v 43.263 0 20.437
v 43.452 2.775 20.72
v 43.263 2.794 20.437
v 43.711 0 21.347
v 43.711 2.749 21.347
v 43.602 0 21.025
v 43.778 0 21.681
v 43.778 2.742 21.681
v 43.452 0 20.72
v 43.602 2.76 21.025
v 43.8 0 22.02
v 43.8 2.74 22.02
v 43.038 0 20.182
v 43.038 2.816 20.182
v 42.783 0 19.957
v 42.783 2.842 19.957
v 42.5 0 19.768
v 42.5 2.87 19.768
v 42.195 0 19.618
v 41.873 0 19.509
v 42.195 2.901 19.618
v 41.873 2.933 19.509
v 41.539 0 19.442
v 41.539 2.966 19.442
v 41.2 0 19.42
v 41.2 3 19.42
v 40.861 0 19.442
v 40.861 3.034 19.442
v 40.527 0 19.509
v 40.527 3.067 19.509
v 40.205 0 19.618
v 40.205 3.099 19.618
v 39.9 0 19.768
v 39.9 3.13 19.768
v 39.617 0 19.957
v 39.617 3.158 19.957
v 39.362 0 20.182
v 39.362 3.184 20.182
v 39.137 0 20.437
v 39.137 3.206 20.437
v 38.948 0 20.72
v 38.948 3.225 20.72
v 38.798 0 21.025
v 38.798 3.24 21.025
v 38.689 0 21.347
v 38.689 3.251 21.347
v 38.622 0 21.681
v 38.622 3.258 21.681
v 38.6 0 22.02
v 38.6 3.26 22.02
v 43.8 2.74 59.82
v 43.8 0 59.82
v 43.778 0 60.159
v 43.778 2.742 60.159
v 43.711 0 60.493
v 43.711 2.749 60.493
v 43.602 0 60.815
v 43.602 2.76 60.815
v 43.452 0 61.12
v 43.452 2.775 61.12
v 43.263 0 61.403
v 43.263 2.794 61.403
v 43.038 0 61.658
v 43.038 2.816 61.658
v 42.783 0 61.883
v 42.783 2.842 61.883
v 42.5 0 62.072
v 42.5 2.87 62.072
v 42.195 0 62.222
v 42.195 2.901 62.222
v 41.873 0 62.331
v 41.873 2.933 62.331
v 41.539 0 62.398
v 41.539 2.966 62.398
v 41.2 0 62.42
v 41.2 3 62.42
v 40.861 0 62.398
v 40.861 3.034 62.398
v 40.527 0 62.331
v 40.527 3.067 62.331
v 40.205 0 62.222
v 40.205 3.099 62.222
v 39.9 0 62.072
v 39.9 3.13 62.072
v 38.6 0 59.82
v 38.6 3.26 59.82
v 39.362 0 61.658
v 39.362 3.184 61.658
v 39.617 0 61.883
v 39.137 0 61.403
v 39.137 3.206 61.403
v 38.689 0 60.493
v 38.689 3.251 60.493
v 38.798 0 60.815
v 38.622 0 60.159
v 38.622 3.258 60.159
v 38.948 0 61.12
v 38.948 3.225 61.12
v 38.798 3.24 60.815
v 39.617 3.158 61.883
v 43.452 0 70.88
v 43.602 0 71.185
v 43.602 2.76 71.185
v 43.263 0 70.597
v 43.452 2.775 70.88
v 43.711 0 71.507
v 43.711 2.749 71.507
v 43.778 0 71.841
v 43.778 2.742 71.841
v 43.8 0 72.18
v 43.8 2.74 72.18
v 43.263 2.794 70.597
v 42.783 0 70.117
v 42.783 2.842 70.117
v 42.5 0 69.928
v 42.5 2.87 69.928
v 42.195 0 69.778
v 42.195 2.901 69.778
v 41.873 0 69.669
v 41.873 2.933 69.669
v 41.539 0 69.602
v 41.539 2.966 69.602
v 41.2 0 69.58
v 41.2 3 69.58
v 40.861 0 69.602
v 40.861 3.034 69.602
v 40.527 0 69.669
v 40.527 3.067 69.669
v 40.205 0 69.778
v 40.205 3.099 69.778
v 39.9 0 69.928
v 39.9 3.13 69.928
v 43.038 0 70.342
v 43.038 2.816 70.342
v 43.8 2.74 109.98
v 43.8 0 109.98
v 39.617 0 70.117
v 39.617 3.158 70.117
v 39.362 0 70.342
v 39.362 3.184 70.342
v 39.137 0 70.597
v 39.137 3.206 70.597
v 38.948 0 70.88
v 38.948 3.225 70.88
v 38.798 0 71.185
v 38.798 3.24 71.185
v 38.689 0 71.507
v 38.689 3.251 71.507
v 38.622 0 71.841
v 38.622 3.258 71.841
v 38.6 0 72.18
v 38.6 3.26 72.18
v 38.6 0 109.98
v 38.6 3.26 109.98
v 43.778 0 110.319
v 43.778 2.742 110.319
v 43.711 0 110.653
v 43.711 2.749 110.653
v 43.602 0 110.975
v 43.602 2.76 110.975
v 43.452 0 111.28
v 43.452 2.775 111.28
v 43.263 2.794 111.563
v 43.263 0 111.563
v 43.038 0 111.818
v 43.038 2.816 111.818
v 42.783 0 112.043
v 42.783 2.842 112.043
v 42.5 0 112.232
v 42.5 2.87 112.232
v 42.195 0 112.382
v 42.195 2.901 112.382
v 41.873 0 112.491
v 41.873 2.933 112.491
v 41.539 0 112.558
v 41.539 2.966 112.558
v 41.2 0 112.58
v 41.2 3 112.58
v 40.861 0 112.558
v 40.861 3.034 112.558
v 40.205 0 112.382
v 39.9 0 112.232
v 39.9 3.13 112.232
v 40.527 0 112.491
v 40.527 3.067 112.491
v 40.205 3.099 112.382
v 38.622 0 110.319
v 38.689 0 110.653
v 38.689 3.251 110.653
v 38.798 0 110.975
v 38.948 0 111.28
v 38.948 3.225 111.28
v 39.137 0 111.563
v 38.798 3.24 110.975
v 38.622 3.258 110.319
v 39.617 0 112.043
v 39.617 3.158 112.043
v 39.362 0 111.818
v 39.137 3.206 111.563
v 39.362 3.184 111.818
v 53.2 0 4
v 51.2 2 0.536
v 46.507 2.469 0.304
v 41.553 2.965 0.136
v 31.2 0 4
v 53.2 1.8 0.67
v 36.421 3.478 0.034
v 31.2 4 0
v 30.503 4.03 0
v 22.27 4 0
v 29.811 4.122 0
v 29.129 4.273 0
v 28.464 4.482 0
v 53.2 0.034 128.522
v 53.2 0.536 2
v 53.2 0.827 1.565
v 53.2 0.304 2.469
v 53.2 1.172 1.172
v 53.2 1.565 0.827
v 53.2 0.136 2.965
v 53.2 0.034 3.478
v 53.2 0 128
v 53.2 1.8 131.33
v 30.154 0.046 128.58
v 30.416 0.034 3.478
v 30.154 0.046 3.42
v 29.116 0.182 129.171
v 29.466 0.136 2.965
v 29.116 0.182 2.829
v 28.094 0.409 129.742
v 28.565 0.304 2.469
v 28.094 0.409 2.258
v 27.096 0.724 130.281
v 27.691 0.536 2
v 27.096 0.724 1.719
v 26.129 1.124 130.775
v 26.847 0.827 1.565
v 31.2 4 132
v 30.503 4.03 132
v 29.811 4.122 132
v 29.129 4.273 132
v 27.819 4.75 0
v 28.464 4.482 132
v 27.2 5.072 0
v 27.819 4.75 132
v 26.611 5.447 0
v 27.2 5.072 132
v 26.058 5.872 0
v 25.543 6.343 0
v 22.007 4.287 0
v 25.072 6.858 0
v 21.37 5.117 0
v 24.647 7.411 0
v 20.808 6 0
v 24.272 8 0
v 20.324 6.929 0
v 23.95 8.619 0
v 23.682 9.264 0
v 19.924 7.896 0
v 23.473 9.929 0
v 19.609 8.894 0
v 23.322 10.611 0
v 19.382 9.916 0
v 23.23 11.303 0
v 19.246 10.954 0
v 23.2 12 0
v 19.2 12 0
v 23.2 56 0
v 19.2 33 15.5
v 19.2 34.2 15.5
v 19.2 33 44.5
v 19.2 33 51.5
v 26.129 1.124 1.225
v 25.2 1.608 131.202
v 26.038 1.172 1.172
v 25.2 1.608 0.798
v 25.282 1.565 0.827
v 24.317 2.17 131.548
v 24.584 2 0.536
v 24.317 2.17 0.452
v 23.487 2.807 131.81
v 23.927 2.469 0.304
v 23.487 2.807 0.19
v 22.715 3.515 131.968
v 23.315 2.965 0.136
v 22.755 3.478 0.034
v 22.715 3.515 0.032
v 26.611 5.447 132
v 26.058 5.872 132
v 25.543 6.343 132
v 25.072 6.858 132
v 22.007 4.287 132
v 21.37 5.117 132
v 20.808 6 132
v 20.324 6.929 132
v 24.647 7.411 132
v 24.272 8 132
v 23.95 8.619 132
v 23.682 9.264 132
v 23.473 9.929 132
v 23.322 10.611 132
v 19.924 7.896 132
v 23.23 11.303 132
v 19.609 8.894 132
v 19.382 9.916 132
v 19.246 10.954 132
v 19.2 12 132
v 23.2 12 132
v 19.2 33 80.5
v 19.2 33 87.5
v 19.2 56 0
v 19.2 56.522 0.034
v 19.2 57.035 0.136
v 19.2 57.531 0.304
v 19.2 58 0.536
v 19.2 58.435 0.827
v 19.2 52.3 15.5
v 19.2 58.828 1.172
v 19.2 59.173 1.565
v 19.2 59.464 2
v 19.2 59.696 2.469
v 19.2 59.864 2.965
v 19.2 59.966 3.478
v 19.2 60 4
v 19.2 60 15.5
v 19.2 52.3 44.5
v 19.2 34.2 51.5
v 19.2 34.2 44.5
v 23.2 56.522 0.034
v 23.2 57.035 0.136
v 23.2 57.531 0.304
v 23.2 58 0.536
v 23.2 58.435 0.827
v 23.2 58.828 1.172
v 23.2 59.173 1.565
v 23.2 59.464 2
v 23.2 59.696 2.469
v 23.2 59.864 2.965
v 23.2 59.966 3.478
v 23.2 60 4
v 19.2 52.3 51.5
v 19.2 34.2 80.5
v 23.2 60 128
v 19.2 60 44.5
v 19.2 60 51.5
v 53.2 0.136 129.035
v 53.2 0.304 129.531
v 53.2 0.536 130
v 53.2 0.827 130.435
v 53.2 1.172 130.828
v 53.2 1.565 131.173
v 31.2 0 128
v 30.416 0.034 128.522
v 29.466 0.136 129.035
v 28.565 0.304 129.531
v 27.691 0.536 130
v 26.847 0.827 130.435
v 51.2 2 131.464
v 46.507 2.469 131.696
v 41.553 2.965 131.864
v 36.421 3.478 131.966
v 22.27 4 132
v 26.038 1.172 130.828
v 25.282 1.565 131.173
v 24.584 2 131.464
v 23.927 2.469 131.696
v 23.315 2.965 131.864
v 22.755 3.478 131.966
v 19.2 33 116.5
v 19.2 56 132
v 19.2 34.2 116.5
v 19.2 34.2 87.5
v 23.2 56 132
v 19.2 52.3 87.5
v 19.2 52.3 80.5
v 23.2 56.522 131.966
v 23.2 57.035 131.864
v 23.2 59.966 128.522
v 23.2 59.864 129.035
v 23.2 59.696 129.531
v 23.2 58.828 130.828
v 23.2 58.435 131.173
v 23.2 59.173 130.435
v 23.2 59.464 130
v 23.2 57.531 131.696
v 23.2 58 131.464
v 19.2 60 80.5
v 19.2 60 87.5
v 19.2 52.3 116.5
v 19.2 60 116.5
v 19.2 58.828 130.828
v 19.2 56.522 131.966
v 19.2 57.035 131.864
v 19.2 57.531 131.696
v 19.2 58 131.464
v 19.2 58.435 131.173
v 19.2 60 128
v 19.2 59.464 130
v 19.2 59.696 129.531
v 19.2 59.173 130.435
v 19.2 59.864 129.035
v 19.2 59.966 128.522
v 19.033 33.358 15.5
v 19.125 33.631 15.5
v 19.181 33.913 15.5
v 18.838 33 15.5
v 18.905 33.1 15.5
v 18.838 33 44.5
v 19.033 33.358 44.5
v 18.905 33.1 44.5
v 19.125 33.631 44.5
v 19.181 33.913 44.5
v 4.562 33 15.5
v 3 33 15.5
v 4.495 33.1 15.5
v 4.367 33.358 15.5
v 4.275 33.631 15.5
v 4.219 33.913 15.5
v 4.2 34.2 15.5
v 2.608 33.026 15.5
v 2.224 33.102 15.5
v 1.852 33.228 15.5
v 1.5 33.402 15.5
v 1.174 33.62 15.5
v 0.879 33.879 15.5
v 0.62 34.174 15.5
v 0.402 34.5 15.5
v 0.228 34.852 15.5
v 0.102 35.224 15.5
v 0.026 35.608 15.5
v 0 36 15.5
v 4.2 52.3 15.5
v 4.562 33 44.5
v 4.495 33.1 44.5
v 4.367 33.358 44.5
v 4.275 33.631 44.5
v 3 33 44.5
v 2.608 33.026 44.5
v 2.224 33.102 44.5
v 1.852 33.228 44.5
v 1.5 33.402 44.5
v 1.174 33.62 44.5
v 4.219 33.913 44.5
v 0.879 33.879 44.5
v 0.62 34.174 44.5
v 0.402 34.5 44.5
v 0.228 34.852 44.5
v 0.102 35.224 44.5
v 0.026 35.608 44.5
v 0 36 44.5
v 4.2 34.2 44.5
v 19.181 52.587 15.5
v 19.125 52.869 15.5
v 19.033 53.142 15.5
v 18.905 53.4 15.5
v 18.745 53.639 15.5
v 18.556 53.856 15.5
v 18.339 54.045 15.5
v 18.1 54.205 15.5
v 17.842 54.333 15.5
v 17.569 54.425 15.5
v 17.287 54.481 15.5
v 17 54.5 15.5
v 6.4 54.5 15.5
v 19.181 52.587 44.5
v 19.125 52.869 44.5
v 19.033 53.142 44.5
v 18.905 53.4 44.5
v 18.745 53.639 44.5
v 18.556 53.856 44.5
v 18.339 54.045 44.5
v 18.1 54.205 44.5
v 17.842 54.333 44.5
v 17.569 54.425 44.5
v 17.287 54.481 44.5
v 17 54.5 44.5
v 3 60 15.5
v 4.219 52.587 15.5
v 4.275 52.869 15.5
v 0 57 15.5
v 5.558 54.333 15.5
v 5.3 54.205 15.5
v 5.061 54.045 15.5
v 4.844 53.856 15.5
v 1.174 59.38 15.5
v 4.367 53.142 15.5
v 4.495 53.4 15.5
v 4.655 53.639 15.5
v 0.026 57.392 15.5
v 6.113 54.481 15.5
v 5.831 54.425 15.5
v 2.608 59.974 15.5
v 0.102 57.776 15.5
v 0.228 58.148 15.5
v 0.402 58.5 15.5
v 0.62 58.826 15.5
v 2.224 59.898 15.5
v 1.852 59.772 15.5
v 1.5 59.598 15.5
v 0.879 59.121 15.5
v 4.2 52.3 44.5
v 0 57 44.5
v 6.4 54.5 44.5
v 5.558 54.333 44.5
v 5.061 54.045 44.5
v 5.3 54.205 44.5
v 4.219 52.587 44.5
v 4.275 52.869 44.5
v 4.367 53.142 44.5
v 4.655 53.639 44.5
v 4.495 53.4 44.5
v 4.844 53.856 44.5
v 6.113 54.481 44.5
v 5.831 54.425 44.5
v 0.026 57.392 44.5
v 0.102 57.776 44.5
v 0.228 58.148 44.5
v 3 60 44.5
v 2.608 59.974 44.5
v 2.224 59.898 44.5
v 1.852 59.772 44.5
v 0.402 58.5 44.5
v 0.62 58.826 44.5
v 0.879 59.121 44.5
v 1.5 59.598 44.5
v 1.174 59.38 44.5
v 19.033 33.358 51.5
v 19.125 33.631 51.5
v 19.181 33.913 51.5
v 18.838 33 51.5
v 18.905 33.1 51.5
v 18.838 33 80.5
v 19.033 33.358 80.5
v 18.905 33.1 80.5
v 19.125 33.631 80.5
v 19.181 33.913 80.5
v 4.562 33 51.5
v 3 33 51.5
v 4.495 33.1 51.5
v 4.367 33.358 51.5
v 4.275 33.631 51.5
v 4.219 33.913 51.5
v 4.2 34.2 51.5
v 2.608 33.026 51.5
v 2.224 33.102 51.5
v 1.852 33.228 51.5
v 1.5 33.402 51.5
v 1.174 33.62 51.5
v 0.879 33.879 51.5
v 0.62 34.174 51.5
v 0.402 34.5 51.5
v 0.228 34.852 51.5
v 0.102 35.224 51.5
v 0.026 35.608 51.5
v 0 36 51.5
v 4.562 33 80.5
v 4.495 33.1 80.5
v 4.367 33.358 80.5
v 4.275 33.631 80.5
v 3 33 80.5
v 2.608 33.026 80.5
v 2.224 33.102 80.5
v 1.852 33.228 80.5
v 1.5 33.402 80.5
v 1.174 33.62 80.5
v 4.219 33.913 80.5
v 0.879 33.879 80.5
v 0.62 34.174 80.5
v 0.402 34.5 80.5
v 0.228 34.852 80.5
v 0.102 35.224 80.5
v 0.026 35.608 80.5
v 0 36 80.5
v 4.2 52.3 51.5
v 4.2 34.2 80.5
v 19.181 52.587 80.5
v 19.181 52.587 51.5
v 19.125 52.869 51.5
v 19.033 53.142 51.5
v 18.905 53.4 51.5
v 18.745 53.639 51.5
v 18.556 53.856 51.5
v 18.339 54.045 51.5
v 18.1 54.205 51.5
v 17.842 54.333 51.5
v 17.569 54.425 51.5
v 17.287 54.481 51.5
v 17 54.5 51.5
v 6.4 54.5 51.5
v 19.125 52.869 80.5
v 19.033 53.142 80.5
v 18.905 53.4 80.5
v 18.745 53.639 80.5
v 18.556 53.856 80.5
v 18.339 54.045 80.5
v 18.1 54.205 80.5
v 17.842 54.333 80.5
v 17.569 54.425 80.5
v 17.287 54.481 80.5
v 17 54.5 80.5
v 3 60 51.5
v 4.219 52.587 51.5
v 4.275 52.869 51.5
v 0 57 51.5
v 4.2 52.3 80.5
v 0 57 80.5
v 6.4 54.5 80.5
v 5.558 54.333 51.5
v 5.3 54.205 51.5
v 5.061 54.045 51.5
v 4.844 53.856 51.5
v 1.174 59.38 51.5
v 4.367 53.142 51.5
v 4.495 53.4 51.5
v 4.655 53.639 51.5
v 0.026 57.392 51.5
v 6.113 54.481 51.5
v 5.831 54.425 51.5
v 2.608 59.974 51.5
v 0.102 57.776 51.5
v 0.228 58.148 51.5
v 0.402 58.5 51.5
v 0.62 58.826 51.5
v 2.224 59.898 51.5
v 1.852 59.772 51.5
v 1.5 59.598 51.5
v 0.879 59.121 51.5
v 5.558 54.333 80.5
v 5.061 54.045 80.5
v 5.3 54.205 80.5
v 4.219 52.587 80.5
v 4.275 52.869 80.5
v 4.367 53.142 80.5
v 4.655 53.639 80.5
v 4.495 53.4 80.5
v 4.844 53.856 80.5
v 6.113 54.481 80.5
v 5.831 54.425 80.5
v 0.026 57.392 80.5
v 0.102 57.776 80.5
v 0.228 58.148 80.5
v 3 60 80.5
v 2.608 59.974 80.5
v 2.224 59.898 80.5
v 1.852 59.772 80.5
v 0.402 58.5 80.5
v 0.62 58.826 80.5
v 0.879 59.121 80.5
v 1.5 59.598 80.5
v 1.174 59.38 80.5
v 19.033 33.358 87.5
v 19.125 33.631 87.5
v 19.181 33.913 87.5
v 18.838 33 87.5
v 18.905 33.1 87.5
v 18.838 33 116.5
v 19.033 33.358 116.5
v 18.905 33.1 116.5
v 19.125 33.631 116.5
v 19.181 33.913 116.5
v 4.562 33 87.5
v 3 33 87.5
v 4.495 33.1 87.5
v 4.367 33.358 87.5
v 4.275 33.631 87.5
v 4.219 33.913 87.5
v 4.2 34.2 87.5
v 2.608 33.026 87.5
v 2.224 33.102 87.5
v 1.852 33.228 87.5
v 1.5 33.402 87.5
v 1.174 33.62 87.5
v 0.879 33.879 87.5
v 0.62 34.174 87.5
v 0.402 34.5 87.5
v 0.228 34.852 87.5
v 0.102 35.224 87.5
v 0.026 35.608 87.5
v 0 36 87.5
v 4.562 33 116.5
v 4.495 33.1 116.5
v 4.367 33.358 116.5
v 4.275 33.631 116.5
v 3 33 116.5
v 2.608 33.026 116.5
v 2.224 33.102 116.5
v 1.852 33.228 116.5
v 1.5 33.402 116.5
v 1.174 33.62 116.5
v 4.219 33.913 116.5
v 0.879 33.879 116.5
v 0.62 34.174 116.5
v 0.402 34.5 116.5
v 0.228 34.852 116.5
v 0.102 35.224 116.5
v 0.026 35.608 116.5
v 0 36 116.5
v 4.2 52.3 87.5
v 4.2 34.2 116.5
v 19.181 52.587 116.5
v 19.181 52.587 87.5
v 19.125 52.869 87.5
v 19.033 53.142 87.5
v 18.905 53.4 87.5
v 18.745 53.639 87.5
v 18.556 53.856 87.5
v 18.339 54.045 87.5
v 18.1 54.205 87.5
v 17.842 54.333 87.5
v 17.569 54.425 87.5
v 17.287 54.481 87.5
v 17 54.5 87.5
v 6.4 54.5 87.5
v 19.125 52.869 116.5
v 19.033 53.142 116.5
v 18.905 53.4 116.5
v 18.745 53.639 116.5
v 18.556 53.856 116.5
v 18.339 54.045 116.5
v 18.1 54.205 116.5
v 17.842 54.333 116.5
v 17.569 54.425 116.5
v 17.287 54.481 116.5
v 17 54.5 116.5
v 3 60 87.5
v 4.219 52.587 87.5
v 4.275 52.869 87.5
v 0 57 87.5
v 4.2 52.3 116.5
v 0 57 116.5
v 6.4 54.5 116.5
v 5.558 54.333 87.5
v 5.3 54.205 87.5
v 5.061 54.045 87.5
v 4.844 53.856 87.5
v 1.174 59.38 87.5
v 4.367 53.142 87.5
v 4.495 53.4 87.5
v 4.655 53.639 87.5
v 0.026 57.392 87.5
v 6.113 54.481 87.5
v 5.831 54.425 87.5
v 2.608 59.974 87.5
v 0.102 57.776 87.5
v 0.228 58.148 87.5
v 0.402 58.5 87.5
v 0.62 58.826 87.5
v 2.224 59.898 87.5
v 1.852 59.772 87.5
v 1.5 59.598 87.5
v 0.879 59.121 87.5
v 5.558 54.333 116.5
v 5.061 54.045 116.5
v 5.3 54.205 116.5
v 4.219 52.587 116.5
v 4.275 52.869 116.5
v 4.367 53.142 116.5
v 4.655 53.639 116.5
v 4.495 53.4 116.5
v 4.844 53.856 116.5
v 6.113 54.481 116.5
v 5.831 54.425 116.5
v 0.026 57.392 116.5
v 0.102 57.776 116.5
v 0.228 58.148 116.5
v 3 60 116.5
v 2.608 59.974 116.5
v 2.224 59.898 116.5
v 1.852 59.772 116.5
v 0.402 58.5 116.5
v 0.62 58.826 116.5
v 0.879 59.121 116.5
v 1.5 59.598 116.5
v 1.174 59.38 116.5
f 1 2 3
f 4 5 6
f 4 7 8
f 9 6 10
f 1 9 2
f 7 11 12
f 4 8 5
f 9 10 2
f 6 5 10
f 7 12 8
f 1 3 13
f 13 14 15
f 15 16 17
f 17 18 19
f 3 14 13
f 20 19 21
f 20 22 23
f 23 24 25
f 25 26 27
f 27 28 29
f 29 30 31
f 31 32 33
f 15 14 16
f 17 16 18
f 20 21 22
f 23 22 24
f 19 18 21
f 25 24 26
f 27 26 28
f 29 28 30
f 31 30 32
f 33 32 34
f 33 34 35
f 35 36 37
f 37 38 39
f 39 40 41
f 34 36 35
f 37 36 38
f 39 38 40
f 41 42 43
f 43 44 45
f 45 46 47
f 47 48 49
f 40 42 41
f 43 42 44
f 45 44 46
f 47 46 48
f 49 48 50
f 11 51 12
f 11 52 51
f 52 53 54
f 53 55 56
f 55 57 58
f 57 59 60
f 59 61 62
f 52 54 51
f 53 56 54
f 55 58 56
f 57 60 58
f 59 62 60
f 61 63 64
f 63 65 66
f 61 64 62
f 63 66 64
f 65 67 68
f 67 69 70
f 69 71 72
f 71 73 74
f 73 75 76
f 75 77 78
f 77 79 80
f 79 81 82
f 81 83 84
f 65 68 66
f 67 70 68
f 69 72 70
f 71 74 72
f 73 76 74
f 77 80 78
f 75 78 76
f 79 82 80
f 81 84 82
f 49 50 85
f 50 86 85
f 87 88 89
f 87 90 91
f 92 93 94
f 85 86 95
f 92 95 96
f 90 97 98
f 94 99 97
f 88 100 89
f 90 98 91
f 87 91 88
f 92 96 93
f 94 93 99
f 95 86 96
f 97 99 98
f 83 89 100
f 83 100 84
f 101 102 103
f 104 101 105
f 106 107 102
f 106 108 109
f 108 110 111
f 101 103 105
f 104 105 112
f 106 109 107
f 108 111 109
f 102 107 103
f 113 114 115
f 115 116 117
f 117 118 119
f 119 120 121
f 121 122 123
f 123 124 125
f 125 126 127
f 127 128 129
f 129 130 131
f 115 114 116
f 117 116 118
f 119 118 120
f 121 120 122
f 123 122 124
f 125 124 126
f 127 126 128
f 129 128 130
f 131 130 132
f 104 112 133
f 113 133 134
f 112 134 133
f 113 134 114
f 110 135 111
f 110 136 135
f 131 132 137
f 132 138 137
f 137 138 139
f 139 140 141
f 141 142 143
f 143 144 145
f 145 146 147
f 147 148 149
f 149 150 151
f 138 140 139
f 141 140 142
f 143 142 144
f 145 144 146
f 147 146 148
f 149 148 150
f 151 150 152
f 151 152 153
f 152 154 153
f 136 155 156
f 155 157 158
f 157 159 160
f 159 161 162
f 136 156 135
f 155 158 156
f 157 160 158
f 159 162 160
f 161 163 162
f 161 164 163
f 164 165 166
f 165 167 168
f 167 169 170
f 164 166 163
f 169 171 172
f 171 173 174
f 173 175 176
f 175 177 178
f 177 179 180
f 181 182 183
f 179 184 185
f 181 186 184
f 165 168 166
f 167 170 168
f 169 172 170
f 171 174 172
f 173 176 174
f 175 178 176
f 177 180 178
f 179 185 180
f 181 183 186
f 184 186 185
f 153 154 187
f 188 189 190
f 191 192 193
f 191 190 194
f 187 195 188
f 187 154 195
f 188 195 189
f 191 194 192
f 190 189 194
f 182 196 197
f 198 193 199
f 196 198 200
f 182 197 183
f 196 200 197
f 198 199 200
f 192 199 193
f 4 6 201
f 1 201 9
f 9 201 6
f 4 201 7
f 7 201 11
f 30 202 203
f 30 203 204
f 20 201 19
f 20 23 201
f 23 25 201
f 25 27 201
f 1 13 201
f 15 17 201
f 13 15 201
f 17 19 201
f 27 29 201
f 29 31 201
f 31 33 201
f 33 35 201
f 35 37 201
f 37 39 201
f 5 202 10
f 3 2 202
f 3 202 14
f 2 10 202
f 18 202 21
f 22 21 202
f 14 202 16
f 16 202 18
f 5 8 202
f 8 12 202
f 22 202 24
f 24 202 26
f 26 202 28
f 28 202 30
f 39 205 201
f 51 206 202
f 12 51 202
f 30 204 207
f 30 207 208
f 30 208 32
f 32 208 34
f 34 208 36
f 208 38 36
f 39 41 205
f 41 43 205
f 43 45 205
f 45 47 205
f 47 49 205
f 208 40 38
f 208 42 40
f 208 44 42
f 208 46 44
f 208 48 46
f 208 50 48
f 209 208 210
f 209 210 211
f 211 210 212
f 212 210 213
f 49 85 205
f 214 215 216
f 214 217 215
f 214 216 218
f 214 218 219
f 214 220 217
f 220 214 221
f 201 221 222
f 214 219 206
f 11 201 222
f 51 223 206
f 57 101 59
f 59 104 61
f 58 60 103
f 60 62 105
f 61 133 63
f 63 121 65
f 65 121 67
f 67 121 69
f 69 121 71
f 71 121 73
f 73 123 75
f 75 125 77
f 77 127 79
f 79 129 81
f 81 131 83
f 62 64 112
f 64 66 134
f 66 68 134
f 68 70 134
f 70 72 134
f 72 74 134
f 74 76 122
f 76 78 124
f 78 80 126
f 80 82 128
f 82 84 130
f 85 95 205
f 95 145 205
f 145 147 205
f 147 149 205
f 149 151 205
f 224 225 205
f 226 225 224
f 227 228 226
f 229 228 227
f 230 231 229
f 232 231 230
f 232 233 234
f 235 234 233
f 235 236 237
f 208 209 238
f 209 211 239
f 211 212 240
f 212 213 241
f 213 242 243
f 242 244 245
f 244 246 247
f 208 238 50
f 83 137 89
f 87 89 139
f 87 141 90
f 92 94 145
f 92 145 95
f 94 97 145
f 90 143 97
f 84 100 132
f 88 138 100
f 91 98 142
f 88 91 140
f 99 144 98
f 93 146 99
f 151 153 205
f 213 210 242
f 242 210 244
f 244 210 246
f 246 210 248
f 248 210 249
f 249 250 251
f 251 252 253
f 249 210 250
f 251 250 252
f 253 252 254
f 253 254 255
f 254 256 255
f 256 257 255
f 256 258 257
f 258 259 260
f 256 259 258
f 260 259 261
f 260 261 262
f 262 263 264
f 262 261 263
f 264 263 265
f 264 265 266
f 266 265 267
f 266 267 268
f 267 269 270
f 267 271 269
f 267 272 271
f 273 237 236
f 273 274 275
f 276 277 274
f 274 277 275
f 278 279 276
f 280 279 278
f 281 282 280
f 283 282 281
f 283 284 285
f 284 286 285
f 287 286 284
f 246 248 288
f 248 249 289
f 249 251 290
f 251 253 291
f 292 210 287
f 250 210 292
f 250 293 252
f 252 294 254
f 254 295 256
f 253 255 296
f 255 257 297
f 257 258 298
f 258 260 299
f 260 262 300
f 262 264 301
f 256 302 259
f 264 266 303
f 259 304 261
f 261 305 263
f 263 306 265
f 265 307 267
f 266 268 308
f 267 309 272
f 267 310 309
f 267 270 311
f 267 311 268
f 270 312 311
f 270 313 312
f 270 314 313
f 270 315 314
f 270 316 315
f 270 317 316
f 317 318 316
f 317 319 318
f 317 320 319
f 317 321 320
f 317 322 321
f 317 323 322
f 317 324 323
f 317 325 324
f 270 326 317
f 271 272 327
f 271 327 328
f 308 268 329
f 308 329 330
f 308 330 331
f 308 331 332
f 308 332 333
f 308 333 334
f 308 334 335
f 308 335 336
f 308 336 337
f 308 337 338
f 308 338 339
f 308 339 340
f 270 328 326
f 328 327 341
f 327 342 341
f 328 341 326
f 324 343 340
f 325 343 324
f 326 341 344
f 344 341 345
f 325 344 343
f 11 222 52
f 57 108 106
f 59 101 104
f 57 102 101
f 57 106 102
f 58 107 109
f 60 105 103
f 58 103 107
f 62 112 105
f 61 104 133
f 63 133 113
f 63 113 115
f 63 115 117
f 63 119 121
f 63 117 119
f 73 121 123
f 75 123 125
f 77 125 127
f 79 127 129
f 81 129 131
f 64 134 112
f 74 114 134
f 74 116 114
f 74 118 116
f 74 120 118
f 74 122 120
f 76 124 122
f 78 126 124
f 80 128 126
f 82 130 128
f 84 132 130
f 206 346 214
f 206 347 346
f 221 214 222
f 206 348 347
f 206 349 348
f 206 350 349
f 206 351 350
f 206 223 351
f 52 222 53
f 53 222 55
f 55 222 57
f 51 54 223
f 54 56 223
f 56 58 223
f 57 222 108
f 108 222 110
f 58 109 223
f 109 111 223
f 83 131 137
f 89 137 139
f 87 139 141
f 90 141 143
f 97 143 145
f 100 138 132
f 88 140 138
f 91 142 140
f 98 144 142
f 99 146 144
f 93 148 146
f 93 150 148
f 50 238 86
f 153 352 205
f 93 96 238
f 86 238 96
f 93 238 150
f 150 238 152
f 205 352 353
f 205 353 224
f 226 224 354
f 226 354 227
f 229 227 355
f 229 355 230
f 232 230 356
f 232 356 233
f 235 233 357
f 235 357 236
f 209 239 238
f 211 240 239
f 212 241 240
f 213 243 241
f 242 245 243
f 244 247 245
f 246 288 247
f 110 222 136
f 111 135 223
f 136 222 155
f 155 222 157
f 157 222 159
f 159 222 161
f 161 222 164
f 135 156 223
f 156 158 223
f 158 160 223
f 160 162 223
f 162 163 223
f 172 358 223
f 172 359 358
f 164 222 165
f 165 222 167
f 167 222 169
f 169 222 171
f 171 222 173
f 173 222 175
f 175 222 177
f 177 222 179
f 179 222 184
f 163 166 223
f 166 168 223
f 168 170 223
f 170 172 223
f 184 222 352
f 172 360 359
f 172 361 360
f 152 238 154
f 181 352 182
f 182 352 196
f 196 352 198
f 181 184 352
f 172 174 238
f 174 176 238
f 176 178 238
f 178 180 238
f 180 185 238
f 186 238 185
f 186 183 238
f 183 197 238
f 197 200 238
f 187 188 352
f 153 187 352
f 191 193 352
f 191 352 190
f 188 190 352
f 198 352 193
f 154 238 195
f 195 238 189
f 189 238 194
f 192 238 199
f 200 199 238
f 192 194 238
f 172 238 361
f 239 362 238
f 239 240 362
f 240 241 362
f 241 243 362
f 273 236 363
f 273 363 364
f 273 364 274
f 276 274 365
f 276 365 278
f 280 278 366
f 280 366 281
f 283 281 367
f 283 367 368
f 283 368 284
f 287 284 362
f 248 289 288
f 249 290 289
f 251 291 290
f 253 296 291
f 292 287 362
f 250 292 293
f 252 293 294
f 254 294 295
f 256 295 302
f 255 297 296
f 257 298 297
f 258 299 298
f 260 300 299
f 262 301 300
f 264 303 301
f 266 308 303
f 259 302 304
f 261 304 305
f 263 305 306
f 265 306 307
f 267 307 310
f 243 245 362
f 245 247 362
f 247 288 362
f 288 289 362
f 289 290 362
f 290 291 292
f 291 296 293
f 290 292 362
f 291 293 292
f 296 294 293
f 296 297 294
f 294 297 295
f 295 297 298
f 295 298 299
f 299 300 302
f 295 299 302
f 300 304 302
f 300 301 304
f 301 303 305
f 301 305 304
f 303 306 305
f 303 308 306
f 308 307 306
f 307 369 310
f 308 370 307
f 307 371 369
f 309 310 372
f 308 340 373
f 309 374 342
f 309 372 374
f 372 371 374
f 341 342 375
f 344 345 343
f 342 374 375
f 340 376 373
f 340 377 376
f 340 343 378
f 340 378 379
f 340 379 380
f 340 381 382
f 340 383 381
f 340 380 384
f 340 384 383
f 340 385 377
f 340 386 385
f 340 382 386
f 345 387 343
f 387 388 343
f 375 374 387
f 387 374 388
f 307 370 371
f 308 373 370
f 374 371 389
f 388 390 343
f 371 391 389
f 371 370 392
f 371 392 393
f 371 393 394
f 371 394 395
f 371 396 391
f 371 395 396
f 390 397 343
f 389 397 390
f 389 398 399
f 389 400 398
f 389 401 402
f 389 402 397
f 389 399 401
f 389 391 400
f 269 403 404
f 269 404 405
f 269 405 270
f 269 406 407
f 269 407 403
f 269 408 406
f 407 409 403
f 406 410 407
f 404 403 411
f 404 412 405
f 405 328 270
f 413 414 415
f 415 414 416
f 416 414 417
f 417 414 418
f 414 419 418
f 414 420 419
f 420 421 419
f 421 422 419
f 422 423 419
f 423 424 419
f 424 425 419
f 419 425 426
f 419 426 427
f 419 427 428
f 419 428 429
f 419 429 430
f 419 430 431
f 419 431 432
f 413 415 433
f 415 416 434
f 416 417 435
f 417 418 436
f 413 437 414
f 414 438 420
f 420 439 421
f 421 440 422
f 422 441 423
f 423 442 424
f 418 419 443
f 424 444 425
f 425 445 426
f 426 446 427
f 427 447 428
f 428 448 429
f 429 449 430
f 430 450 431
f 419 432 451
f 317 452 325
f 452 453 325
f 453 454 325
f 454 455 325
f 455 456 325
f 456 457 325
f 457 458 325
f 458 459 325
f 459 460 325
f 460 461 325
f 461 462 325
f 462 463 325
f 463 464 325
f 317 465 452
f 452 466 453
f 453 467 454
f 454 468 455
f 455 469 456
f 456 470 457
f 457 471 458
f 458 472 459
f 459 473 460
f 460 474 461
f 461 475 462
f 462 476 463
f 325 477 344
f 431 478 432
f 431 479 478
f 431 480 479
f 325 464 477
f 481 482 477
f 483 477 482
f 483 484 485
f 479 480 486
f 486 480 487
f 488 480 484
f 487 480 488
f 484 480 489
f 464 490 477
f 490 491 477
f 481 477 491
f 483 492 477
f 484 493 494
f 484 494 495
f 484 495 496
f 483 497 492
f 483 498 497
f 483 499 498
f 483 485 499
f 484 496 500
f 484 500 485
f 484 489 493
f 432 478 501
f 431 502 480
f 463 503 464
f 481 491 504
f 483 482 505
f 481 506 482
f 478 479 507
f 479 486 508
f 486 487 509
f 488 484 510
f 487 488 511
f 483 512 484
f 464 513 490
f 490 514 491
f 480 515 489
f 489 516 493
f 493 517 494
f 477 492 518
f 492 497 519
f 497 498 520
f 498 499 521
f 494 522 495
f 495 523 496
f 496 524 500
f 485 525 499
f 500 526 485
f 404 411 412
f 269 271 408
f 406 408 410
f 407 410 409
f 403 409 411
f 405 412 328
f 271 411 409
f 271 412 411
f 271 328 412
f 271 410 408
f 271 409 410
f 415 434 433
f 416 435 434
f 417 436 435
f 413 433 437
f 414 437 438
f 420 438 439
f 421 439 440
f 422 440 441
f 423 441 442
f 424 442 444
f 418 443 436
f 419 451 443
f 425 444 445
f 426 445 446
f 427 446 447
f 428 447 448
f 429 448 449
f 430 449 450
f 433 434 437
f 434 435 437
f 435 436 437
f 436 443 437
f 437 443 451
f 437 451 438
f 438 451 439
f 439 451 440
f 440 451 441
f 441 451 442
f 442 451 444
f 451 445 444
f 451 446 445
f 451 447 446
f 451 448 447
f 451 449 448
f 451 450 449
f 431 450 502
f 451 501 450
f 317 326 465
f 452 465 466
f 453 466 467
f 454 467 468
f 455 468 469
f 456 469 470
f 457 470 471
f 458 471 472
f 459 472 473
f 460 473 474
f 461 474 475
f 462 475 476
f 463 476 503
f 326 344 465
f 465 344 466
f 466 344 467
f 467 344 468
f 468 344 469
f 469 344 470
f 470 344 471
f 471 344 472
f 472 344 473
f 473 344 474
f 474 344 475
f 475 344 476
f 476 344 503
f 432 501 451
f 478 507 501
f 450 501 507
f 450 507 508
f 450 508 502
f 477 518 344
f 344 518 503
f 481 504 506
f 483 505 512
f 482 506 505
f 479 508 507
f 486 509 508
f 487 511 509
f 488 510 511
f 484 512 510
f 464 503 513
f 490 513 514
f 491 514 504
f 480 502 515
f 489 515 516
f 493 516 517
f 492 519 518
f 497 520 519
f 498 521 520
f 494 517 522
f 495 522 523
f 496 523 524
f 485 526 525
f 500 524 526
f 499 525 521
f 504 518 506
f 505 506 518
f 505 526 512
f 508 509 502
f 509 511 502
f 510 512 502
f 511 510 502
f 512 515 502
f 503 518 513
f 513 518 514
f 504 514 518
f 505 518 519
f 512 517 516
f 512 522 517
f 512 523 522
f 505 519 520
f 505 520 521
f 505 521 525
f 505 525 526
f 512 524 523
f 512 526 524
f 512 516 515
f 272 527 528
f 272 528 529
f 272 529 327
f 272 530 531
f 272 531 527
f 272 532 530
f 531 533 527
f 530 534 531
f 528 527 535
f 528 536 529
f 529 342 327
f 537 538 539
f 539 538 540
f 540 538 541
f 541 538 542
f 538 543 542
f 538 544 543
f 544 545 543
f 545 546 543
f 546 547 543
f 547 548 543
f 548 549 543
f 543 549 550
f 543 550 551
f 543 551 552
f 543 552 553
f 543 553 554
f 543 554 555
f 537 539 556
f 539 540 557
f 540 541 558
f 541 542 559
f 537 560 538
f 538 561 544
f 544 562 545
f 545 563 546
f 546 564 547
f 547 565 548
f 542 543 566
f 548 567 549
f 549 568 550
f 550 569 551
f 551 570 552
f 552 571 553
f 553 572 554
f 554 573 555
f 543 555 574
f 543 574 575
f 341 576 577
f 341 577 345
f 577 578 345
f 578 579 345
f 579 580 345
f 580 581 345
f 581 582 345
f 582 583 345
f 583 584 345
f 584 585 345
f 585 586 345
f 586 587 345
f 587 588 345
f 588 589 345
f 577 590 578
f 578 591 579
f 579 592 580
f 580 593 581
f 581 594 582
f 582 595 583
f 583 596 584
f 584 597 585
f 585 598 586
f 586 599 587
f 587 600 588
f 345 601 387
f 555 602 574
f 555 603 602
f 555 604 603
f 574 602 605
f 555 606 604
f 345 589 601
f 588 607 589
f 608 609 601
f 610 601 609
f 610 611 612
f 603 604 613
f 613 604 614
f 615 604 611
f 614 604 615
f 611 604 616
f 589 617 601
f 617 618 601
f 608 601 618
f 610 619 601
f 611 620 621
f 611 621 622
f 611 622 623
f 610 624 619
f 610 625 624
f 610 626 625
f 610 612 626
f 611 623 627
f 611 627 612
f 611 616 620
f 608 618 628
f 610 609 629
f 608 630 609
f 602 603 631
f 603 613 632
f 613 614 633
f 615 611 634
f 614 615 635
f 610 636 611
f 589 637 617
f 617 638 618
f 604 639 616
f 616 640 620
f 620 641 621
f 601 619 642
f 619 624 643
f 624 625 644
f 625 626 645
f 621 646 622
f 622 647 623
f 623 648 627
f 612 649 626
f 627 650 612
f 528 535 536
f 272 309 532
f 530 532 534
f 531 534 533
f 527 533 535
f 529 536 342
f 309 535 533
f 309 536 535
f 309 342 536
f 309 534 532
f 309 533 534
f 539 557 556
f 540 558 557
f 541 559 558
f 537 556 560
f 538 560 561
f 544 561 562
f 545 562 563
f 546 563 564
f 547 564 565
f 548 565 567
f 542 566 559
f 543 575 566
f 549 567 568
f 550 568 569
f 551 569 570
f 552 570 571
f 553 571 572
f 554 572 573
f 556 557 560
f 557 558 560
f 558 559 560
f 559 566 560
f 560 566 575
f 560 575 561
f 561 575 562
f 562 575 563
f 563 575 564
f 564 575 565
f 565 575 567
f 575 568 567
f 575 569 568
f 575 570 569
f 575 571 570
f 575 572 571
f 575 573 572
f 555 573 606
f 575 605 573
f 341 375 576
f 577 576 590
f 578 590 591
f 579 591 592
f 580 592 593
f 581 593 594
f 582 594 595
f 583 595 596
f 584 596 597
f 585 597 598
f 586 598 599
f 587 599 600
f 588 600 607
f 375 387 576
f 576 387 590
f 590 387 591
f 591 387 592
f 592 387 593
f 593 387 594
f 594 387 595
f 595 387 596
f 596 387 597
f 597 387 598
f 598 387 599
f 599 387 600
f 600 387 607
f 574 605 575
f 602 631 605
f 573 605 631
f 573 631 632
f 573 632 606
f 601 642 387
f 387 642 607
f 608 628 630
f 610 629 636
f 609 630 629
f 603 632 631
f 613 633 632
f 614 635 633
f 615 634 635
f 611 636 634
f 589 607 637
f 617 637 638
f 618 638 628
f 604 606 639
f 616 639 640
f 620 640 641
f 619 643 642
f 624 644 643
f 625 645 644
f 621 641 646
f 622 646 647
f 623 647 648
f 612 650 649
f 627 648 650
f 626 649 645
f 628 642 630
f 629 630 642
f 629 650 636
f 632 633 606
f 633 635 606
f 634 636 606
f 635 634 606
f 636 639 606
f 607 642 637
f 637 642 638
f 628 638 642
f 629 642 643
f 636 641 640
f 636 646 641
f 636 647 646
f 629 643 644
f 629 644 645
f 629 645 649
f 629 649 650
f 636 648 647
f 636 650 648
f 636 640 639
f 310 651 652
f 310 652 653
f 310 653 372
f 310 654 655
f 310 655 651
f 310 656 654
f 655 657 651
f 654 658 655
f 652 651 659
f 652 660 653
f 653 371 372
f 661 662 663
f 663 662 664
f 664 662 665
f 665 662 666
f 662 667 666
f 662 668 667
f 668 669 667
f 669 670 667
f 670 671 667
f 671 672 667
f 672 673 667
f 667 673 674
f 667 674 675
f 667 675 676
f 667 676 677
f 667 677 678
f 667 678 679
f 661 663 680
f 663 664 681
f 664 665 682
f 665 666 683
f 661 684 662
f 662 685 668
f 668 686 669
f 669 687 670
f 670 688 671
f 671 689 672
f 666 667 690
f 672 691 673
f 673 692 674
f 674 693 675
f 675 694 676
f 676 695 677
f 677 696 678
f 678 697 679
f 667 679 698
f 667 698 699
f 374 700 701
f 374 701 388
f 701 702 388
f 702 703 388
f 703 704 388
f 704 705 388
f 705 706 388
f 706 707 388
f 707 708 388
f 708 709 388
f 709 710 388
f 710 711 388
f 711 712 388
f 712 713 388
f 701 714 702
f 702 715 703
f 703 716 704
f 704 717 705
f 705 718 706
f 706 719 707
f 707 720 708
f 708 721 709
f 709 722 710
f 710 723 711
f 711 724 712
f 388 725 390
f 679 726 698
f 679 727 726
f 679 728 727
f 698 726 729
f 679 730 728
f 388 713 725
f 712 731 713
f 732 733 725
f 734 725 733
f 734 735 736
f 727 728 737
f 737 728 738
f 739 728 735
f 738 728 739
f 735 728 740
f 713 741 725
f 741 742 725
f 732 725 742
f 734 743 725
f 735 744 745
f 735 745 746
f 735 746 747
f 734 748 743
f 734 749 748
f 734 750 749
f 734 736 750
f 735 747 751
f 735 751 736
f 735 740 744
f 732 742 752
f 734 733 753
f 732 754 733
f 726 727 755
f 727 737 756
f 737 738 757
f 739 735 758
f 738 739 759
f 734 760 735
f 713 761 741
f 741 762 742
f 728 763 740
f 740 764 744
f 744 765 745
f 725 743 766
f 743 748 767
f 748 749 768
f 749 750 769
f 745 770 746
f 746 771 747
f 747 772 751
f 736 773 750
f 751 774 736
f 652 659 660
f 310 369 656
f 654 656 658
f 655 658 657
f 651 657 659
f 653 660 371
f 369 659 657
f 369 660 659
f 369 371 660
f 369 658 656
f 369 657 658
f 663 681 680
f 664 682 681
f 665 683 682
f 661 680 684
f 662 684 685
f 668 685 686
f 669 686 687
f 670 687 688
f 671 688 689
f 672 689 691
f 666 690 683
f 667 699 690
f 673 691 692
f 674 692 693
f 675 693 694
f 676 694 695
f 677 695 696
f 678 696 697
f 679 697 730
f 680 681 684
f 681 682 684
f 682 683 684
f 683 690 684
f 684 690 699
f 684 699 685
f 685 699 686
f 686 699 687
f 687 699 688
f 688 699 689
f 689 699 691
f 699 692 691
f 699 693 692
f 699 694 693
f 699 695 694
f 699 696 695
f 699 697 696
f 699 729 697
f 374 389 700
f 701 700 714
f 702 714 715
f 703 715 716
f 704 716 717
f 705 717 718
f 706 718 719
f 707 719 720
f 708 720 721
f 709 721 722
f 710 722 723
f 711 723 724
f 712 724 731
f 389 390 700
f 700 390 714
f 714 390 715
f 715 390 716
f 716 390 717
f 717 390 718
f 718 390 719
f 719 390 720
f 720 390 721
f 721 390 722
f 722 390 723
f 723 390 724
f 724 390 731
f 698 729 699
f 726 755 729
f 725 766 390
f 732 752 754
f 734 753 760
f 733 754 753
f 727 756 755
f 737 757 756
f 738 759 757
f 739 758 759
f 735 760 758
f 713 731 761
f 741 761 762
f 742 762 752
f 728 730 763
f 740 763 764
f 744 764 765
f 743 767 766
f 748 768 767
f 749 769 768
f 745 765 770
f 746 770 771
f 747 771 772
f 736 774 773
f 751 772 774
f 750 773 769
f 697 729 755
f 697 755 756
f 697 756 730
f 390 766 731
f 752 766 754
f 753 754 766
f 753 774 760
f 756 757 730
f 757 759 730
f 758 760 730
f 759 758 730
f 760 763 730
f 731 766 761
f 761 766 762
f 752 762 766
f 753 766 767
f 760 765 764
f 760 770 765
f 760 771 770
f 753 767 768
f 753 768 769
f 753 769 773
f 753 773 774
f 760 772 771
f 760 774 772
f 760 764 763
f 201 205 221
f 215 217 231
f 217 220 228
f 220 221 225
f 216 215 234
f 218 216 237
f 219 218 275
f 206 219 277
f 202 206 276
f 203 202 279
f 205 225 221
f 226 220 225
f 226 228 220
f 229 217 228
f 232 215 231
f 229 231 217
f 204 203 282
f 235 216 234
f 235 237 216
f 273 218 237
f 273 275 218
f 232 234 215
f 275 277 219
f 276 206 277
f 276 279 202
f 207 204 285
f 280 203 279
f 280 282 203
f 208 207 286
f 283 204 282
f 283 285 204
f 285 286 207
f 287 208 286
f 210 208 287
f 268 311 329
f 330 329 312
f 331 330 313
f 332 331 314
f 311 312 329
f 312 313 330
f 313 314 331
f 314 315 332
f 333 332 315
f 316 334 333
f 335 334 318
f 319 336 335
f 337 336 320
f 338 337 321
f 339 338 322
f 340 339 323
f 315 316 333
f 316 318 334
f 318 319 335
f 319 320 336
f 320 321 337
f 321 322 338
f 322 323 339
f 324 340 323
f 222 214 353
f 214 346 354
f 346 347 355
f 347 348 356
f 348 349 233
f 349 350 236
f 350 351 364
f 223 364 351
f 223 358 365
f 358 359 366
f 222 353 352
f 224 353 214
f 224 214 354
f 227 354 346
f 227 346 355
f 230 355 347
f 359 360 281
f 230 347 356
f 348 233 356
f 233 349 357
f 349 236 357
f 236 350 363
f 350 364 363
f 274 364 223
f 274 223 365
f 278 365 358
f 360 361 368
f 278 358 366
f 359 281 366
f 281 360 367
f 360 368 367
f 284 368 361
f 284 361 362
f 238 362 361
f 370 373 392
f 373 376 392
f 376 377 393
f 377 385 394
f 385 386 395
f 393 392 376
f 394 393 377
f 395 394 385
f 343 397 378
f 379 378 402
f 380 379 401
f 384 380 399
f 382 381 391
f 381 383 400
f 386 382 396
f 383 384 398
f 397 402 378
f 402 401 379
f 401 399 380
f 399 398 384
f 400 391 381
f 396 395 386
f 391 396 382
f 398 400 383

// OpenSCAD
/*
  Tesla Model Y (2025+ "Juniper") trunk grocery hook

  Reverse-engineered from the Arcoche B0FN7JHT19 listing, installation video,
  product weight, and the visible weatherstrip interface. The local trim gap is
  not published by Tesla or the seller, so print the fit coupon first.

  Coordinate system in installed orientation:
    X = along the hatch opening
    Y = downward
    Z = outward into the cargo area
*/

/* [Output] */
output_mode = "hook_print"; // [hook_preview,hook_catalog,hook_print,coupon_preview,coupon_print]

/* [Overall hook] */
panel_width = 132;          // [110:1:155]
panel_height = 60;          // [48:1:75]
structure_thickness = 4.0; // [3.2:0.1:5.5]
inner_bend_radius = 8;      // [5:0.5:12]
end_corner_radius = 4;      // [0:0.5:8]

/* [Weatherstrip flange] */
flange_depth = 30;          // [22:1:38]
flange_tip_thickness = 1.8; // [1.2:0.1:2.6]
rail_slot_length = 43;      // [32:1:50]
rail_slot_width = 5.2;      // [3.8:0.2:7]
rail_slot_z = -18;          // [-25:1:-10]

/* [Bag hooks] */
hook_count = 3;             // [2:1:4]
hook_width = 29;            // [22:1:34]
hook_gap = 7;               // [4:1:12]
hook_opening = 15;          // [11:1:20]
hook_lip_thickness = 4.2;   // [3.2:0.2:5.5]
hook_lip_height = 27;       // [21:1:34]
hook_shelf_thickness = 5.5; // [4:0.5:8]
hook_back_overlap = 3.0;    // [2:0.5:5]
hook_corner_radius = 3.0;   // [1.5:0.5:4.5]

/* [Fit coupon] */
coupon_width = 34;
coupon_height = 34;

/* [Quality] */
$fn = 48;
arc_steps = 18;

eps = 0.05;
hook_outer_z = structure_thickness + hook_opening + hook_lip_thickness;

function arc_points(cx, cy, radius, a0, a1, steps) =
    [for (i = [0:steps])
        [cx + radius * cos(a0 + (a1 - a0) * i / steps),
         cy + radius * sin(a0 + (a1 - a0) * i / steps)]];

function bracket_profile(height, tip_t) =
    let(
        r = inner_bend_radius,
        t = structure_thickness,
        cx = -r,
        cy = r + t
    )
    concat(
        [[-flange_depth, 0]],
        arc_points(cx, cy, r + t, -90, 0, arc_steps),
        [[t, height], [0, height]],
        arc_points(cx, cy, r, 0, -90, arc_steps),
        [[-flange_depth, tip_t]]
    );

module extrude_along_x(length) {
    translate([length, 0, 0])
        rotate([0, -90, 0])
            linear_extrude(height = length, convexity = 12)
                children();
}

module rounded_rect_2d(size = [10, 10], radius = 2) {
    offset(r = radius)
        offset(delta = -radius)
            square(size);
}

module slot_cut(x_center, slot_length, slot_width, z_center, cut_height) {
    translate([x_center - slot_length / 2 + slot_width / 2, -1, z_center])
        hull() {
            for (x = [0, slot_length - slot_width])
                translate([x, 0, 0])
                    rotate([-90, 0, 0])
                        cylinder(h = cut_height + 2, r = slot_width / 2);
        }
}

module bracket_body(width = panel_width,
                    height = panel_height,
                    tip_t = flange_tip_thickness,
                    include_slots = true) {
    difference() {
        extrude_along_x(width)
            polygon(points = bracket_profile(height, tip_t));

        if (include_slots) {
            local_slot_length = min(rail_slot_length, width < 80 ? width - 10 : rail_slot_length);
            local_centers = width < 80
                ? [width / 2]
                : [width * 0.31, width * 0.69];

            for (center = local_centers)
                slot_cut(
                    x_center = center,
                    slot_length = local_slot_length,
                    slot_width = rail_slot_width,
                    z_center = rail_slot_z,
                    cut_height = structure_thickness
                );
        }
    }
}

module hook_profile_2d() {
    outer_depth = hook_back_overlap + hook_opening + hook_lip_thickness;
    inner_radius = max(1.0, hook_corner_radius - 0.8);

    difference() {
        translate([
            structure_thickness - hook_back_overlap,
            panel_height - hook_lip_height
        ])
            rounded_rect_2d(
                [outer_depth, hook_lip_height],
                hook_corner_radius
            );

        // The subtraction extends above the outer body so the bag slot is open.
        translate([
            structure_thickness,
            panel_height - hook_lip_height - 1
        ])
            rounded_rect_2d(
                [hook_opening, hook_lip_height - hook_shelf_thickness + 1],
                inner_radius
            );
    }
}

module bag_hooks() {
    total_width = hook_count * hook_width + (hook_count - 1) * hook_gap;
    start_x = (panel_width - total_width) / 2;

    assert(total_width <= panel_width - 8,
        "Hooks exceed the panel width; reduce hook_width, hook_gap, or hook_count.");

    for (i = [0:hook_count - 1])
        translate([start_x + i * (hook_width + hook_gap), 0, 0])
            extrude_along_x(hook_width)
                hook_profile_2d();
}

module overall_rounding_mask() {
    translate([0, 0, -flange_depth - 1])
        linear_extrude(height = flange_depth + hook_outer_z + 2)
            rounded_rect_2d(
                [panel_width, panel_height],
                end_corner_radius
            );
}

module installed_hook() {
    intersection() {
        union() {
            bracket_body();
            bag_hooks();
        }
        overall_rounding_mask();
    }
}

module fit_coupon(tip_t = flange_tip_thickness) {
    bracket_body(
        width = coupon_width,
        height = coupon_height,
        tip_t = tip_t,
        include_slots = true
    );
}

module hook_print_orientation() {
    // Stand on the narrow end. This keeps the load-bearing Y-Z cross-section
    // within each layer. The three hook starts still require build-plate tree
    // supports; use a wide brim because the part is tall.
    translate([hook_outer_z, 0, 0])
        rotate([0, -90, 0])
            installed_hook();
}

module coupon_print_orientation(tip_t = flange_tip_thickness) {
    translate([structure_thickness, 0, 0])
        rotate([0, -90, 0])
            fit_coupon(tip_t);
}

if (output_mode == "hook_preview") {
    installed_hook();
} else if (output_mode == "hook_catalog") {
    color([0.14, 0.15, 0.17])
        translate([0, 0, panel_height])
            rotate([-90, 0, 0])
                installed_hook();
} else if (output_mode == "hook_print") {
    hook_print_orientation();
} else if (output_mode == "coupon_preview") {
    fit_coupon();
} else if (output_mode == "coupon_print") {
    coupon_print_orientation();
} else {
    assert(false, str("Unknown output_mode: ", output_mode));
}
